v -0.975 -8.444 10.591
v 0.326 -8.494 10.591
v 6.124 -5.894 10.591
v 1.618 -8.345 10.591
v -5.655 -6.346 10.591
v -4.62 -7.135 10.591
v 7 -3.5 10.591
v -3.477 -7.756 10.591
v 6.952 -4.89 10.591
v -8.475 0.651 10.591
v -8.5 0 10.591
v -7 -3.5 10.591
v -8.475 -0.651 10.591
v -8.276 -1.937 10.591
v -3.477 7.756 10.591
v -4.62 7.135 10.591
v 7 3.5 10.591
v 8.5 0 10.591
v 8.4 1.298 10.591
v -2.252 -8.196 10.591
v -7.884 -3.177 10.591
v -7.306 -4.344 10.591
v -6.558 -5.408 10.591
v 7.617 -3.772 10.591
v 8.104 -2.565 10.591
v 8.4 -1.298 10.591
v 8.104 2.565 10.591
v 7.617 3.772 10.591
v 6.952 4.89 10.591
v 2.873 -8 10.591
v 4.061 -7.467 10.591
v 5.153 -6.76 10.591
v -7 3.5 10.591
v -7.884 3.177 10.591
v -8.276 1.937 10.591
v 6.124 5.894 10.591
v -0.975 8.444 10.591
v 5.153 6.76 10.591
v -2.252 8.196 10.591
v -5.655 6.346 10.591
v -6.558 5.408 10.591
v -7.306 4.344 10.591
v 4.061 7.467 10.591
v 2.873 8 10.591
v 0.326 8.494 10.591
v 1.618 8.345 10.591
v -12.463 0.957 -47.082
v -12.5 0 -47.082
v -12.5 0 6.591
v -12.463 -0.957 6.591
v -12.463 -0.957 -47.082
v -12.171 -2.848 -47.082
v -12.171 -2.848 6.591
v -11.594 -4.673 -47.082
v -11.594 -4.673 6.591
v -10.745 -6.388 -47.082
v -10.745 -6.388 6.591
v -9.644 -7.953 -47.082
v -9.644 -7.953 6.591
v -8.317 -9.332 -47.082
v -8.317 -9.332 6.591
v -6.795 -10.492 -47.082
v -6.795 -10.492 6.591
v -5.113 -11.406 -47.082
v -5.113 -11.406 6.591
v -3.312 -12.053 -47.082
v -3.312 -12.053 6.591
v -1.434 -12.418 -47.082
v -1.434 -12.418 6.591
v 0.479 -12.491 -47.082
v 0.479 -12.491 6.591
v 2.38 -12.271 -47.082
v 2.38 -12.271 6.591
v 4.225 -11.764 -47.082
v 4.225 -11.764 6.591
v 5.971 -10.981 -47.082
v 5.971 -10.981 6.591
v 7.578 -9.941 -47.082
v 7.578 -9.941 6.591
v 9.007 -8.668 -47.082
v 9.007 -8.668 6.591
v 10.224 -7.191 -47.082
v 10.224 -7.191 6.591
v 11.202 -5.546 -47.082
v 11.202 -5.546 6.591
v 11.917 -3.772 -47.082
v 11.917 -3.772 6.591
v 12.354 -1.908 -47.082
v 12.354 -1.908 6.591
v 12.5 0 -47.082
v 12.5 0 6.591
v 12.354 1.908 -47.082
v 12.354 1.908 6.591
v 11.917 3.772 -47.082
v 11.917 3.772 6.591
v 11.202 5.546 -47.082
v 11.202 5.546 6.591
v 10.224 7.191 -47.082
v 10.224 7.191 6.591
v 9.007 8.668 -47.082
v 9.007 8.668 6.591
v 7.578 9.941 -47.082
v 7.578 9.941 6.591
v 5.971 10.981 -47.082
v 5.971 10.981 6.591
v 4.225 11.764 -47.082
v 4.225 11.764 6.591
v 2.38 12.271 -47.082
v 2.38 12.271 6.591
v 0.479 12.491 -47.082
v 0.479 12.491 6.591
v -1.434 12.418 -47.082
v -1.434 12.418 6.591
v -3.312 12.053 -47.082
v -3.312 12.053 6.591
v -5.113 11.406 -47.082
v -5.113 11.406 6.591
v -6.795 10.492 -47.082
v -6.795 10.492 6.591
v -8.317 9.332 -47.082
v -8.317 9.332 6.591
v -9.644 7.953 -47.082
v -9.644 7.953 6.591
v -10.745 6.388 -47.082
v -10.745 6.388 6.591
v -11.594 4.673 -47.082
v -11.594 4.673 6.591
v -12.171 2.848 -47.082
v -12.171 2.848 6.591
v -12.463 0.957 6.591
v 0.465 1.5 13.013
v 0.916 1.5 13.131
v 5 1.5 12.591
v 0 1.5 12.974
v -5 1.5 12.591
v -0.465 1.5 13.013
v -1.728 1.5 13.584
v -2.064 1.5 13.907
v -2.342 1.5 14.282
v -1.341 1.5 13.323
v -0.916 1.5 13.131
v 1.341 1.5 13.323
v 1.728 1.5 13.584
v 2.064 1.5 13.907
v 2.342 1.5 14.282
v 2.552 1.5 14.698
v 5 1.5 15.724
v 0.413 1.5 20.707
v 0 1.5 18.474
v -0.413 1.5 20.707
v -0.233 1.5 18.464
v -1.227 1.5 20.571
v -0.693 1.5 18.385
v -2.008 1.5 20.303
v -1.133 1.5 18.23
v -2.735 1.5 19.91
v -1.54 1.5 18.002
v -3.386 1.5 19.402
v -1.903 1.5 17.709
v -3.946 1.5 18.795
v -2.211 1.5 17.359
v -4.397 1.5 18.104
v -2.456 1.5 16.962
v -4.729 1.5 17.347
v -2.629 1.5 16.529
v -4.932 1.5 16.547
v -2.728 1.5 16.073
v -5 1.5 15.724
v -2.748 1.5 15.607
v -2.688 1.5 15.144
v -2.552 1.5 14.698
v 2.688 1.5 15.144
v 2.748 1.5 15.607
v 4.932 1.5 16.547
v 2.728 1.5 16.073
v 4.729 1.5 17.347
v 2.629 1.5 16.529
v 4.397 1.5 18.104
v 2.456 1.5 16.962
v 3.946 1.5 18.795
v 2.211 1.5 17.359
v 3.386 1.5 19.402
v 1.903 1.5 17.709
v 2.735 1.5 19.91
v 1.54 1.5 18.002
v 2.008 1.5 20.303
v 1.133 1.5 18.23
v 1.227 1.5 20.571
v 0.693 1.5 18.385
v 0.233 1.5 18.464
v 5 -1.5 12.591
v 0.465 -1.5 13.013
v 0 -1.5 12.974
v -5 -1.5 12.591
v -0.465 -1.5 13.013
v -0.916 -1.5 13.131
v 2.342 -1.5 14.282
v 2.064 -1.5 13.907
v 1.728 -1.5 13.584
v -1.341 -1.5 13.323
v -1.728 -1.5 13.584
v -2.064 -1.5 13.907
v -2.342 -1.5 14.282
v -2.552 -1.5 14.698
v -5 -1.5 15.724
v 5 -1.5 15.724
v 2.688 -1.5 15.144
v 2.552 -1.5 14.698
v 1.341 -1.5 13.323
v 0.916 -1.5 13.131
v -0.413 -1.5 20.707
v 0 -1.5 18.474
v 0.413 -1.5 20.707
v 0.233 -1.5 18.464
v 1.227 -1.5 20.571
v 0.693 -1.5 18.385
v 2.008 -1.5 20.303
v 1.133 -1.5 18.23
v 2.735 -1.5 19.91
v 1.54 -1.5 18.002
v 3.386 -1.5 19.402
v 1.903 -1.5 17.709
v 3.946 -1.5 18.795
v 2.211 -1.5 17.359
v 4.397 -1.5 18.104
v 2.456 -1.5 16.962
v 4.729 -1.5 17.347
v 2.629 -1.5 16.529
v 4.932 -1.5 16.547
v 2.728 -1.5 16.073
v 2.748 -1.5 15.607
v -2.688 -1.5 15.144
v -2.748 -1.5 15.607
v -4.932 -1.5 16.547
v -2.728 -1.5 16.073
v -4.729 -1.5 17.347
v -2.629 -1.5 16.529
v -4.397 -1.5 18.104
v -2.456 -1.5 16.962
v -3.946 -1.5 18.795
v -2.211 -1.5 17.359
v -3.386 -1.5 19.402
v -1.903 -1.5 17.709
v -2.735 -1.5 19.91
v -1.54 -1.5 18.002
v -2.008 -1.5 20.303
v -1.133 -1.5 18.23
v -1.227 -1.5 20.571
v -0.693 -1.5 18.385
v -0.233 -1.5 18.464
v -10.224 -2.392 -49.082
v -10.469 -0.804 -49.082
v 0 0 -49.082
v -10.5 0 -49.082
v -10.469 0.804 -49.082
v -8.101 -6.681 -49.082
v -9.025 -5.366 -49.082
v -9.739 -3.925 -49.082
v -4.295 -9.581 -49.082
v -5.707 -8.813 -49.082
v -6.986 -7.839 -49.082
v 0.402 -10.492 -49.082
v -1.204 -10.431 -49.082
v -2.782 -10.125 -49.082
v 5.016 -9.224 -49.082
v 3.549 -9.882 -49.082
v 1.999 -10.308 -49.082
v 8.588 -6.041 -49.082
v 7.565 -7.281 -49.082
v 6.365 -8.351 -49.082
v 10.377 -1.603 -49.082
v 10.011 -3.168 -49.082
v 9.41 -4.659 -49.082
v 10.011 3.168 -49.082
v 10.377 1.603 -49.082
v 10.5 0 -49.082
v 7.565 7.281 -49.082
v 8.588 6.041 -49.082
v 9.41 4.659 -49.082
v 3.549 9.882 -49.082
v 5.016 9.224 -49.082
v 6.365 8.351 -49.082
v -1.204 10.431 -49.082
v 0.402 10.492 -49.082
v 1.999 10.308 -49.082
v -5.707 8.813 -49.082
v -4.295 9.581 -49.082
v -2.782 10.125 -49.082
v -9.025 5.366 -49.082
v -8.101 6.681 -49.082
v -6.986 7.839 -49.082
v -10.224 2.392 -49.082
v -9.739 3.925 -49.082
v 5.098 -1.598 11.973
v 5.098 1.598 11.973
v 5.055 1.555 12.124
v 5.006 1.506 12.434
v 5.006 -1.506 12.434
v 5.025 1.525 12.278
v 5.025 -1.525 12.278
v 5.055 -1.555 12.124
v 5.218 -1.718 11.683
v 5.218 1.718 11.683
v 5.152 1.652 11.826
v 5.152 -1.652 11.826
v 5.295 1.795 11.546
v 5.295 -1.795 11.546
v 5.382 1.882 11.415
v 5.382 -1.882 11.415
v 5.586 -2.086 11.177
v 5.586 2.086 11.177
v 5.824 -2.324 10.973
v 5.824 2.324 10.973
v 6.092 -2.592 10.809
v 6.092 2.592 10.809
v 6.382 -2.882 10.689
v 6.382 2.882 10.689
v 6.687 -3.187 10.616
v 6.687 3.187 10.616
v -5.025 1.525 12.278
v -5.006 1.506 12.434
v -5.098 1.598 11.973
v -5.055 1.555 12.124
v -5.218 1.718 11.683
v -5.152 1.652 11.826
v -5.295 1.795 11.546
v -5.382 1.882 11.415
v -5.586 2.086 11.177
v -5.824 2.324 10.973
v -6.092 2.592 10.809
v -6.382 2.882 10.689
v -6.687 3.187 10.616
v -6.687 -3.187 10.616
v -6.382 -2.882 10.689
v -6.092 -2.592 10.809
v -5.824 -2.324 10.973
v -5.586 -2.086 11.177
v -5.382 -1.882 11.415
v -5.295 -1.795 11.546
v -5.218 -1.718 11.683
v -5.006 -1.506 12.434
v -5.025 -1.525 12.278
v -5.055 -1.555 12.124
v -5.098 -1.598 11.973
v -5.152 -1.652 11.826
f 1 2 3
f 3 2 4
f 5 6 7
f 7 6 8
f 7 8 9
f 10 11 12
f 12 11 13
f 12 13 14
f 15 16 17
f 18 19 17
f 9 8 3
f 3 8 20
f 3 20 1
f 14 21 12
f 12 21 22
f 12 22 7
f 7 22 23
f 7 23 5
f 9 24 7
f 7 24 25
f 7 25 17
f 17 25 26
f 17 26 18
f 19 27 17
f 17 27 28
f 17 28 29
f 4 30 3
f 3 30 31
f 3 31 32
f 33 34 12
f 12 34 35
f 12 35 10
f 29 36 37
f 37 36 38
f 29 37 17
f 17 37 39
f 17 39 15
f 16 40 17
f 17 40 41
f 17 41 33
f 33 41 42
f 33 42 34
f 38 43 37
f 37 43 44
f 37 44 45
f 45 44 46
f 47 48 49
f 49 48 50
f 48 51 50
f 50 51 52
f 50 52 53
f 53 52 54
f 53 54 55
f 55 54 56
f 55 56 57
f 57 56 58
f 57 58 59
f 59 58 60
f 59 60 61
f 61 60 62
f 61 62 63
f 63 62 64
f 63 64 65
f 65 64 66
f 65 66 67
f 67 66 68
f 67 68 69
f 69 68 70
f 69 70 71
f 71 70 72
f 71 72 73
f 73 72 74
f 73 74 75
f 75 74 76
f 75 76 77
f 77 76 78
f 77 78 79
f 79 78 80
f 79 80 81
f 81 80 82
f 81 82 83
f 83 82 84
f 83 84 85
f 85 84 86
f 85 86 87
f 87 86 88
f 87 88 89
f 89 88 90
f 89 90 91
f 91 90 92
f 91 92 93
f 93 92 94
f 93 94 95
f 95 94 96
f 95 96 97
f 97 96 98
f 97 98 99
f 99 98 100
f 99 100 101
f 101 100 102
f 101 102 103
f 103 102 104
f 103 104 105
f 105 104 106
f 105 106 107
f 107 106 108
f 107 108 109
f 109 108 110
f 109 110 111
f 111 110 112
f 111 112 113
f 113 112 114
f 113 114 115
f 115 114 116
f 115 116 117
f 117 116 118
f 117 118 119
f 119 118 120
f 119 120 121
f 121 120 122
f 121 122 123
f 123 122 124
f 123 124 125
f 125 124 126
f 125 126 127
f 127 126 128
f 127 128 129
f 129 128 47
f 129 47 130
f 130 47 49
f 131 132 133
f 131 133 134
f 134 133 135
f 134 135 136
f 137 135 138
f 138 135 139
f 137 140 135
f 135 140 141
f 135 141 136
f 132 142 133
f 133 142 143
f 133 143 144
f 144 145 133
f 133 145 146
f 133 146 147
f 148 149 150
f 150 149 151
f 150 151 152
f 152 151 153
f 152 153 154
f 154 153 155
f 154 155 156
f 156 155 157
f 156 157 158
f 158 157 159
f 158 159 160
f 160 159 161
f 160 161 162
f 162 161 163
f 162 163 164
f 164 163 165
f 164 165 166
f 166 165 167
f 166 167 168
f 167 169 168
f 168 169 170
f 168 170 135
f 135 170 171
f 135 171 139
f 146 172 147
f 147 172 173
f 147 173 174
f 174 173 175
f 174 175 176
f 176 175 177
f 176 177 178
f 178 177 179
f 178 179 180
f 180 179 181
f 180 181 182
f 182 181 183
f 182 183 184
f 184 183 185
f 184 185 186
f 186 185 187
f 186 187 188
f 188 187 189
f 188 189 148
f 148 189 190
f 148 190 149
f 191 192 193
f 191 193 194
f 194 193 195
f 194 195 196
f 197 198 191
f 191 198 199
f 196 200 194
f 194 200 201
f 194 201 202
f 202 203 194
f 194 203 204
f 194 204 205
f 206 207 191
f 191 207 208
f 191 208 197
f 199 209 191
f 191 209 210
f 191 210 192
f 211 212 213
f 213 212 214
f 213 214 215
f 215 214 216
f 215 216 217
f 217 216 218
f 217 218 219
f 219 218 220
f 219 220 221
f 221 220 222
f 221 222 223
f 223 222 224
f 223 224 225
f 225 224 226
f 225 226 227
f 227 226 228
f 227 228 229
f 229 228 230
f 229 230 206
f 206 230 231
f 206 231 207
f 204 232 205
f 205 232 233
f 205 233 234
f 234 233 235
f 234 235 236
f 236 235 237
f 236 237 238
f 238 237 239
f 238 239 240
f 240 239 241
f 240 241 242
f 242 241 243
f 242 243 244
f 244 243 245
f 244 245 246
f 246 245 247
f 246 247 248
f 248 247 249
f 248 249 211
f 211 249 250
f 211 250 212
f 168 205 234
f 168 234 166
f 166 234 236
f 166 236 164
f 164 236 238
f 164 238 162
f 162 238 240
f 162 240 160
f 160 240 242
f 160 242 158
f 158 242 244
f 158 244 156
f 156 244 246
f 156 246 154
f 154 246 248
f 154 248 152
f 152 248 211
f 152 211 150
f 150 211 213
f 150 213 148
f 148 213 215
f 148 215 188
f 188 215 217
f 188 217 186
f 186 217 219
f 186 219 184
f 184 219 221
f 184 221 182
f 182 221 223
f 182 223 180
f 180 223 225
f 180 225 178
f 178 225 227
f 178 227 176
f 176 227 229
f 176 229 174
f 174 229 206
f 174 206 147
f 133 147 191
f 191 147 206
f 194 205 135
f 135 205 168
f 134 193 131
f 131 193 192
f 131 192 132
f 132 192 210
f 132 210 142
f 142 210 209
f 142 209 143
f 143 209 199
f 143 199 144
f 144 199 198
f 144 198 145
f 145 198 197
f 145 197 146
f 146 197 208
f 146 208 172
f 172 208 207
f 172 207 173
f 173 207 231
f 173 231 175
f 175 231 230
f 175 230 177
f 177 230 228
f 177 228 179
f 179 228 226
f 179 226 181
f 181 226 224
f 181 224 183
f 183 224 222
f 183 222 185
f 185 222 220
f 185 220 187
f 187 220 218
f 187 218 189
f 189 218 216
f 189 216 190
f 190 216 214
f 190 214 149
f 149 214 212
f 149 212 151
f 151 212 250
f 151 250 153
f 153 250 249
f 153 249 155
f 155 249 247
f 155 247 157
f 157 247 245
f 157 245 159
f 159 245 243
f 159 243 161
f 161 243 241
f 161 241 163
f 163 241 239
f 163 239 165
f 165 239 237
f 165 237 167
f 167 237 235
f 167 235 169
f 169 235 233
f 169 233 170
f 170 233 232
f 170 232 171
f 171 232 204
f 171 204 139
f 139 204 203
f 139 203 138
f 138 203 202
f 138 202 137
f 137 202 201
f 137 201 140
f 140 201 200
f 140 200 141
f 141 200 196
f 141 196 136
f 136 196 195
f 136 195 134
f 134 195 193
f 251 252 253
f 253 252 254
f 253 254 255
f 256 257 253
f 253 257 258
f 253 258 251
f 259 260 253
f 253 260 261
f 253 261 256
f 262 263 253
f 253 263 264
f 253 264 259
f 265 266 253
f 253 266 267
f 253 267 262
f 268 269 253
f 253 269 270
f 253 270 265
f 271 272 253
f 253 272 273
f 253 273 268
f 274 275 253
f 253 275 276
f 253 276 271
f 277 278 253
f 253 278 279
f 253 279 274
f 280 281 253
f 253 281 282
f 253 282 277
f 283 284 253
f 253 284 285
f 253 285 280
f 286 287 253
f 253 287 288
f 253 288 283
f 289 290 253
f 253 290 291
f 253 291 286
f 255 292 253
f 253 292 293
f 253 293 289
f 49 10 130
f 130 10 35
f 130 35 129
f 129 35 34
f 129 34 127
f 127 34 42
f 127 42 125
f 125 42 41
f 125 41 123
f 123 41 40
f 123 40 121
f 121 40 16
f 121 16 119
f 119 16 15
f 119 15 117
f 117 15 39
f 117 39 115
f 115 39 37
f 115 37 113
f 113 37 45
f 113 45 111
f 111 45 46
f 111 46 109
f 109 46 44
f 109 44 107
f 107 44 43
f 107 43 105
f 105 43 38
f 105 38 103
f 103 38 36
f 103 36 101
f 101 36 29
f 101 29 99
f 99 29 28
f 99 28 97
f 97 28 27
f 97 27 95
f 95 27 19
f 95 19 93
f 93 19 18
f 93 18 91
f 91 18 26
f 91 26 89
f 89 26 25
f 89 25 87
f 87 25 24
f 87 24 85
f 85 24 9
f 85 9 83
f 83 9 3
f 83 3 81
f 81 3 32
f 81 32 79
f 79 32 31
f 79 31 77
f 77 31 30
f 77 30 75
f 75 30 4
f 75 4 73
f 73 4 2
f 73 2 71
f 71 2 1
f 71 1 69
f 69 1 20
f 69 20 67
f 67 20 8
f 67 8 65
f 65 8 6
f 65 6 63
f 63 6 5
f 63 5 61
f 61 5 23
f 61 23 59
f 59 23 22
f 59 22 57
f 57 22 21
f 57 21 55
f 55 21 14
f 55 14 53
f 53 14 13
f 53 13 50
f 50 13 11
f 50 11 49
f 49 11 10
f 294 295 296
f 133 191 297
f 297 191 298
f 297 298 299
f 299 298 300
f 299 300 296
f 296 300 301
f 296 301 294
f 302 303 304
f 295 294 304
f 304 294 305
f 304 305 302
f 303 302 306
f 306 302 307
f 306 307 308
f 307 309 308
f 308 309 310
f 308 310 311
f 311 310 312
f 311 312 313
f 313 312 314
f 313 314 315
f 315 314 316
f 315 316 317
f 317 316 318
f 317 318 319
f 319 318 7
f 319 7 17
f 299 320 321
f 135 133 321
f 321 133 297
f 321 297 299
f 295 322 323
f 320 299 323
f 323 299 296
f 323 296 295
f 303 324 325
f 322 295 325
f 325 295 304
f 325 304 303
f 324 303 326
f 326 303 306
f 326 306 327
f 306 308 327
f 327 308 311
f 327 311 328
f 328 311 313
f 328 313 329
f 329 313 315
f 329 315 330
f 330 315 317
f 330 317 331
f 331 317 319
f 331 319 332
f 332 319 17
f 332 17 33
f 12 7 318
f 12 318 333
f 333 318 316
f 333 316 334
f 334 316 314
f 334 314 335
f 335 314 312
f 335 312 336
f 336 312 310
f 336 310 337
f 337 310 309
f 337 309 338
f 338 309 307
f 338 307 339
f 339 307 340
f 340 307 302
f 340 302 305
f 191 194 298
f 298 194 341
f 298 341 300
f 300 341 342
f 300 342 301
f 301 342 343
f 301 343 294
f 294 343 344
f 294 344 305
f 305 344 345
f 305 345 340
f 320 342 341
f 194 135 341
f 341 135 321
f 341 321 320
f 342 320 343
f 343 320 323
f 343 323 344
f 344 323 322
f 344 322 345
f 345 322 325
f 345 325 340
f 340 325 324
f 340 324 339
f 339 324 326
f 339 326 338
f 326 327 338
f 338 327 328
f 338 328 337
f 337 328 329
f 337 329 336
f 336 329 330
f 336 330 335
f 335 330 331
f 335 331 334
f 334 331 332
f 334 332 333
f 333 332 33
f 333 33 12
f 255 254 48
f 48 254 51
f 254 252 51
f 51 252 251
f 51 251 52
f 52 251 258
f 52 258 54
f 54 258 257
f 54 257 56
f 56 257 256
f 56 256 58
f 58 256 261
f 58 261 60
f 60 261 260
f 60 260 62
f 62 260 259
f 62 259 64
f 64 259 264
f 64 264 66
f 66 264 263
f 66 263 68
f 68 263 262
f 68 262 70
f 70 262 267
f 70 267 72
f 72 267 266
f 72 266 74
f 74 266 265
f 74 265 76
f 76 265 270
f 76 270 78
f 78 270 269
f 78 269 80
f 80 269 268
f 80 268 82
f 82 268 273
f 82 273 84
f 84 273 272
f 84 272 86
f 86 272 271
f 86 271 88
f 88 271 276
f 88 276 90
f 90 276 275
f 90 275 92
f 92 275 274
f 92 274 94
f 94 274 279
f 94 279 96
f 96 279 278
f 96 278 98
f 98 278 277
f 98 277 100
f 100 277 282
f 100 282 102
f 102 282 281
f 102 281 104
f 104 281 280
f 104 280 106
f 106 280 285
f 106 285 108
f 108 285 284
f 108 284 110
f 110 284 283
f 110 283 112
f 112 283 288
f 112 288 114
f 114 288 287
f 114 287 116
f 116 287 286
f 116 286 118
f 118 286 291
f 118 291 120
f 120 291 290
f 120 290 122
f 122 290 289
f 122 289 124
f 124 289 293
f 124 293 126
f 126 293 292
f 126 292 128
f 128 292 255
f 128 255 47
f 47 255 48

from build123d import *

# Parameters (mm, degrees)
SKETCH4_R           = 2.75
BOSS_EXTRUDE1_DEPTH = 1.5
BOSS_EXTRUDE2_START = 45
SKETCH5_R           = 12.5
BOSS_EXTRUDE2_DEPTH = 45
CHAMFER1_SIZE       = 4
FILLET1_R           = 2
CHAMFER2_SIZE       = 2


with BuildPart() as part:
    # Sketch3 → Revolve2 (revolve)
    with BuildSketch(Plane(origin=(0, 0, 0), x_dir=(0, 0, -1), z_dir=(1, 0, 0)), mode=Mode.PRIVATE) as revolve2_sk:
        Polygon((-4.082352568, 12.5), (4.082352568, 12.5), (4.082352568, 0), (-10.590979782, 0), (-10.590979782, 12.5), align=None)
    revolve(revolve2_sk.sketch.rotate(Axis((0, 0, 16.393474527), (0, 0, -1)), 90), axis=Axis((0, 0, 16.393474527), (0, 0, -1)))

    # Sketch4 → Boss-Extrude1 (add, symmetric)
    with BuildSketch(Plane(origin=(0, 0, 0), x_dir=(1, 0, 0), z_dir=(0, 1, 0))):
        with BuildLine():
            Line((-5, -15.723809824), (-5, -10.590979782))
            Line((-5, -10.590979782), (5, -10.590979782))
            Line((5, -10.590979782), (5, -15.723809824))
            ThreePointArc((5, -15.723809824), (0, -20.723809824), (-5, -15.723809824))
        make_face()
        with Locations(Location((0, -15.723809824, 0), (0, 0, 270))):
            Circle(SKETCH4_R, mode=Mode.SUBTRACT)
    extrude(amount=BOSS_EXTRUDE1_DEPTH, both=True)

    # Sketch5 → Boss-Extrude2 (add)
    with BuildSketch(Plane(origin=(0, 0, -4.082352568), x_dir=(-1, 0, 0), z_dir=(0, 0, -1)).offset(BOSS_EXTRUDE2_START)):
        with Locations(Location((0, 0, 0), (0, 0, 180))):
            Circle(SKETCH5_R)
    extrude(amount=-BOSS_EXTRUDE2_DEPTH)

    # Chamfer1
    chamfer1_edges = [part.edges().sort_by_distance(p)[0] for p in [
        (-12.5, 0, 10.590979782),
    ]]
    chamfer(chamfer1_edges, length=CHAMFER1_SIZE)

    # Fillet1
    fillet1_edges = [part.edges().sort_by_distance(p)[0] for p in [
        (0, 1.5, 10.590979782),
        (0, -1.5, 10.590979782),
        (5, 0, 10.590979782),
        (-5, 0, 10.590979782),
    ]]
    fillet(fillet1_edges, radius=FILLET1_R)

    # Chamfer2
    chamfer2_edges = [part.edges().sort_by_distance(p)[0] for p in [
        (-12.5, 0, -49.082352568),
    ]]
    chamfer(chamfer2_edges, length=CHAMFER2_SIZE)


solid = part.part
